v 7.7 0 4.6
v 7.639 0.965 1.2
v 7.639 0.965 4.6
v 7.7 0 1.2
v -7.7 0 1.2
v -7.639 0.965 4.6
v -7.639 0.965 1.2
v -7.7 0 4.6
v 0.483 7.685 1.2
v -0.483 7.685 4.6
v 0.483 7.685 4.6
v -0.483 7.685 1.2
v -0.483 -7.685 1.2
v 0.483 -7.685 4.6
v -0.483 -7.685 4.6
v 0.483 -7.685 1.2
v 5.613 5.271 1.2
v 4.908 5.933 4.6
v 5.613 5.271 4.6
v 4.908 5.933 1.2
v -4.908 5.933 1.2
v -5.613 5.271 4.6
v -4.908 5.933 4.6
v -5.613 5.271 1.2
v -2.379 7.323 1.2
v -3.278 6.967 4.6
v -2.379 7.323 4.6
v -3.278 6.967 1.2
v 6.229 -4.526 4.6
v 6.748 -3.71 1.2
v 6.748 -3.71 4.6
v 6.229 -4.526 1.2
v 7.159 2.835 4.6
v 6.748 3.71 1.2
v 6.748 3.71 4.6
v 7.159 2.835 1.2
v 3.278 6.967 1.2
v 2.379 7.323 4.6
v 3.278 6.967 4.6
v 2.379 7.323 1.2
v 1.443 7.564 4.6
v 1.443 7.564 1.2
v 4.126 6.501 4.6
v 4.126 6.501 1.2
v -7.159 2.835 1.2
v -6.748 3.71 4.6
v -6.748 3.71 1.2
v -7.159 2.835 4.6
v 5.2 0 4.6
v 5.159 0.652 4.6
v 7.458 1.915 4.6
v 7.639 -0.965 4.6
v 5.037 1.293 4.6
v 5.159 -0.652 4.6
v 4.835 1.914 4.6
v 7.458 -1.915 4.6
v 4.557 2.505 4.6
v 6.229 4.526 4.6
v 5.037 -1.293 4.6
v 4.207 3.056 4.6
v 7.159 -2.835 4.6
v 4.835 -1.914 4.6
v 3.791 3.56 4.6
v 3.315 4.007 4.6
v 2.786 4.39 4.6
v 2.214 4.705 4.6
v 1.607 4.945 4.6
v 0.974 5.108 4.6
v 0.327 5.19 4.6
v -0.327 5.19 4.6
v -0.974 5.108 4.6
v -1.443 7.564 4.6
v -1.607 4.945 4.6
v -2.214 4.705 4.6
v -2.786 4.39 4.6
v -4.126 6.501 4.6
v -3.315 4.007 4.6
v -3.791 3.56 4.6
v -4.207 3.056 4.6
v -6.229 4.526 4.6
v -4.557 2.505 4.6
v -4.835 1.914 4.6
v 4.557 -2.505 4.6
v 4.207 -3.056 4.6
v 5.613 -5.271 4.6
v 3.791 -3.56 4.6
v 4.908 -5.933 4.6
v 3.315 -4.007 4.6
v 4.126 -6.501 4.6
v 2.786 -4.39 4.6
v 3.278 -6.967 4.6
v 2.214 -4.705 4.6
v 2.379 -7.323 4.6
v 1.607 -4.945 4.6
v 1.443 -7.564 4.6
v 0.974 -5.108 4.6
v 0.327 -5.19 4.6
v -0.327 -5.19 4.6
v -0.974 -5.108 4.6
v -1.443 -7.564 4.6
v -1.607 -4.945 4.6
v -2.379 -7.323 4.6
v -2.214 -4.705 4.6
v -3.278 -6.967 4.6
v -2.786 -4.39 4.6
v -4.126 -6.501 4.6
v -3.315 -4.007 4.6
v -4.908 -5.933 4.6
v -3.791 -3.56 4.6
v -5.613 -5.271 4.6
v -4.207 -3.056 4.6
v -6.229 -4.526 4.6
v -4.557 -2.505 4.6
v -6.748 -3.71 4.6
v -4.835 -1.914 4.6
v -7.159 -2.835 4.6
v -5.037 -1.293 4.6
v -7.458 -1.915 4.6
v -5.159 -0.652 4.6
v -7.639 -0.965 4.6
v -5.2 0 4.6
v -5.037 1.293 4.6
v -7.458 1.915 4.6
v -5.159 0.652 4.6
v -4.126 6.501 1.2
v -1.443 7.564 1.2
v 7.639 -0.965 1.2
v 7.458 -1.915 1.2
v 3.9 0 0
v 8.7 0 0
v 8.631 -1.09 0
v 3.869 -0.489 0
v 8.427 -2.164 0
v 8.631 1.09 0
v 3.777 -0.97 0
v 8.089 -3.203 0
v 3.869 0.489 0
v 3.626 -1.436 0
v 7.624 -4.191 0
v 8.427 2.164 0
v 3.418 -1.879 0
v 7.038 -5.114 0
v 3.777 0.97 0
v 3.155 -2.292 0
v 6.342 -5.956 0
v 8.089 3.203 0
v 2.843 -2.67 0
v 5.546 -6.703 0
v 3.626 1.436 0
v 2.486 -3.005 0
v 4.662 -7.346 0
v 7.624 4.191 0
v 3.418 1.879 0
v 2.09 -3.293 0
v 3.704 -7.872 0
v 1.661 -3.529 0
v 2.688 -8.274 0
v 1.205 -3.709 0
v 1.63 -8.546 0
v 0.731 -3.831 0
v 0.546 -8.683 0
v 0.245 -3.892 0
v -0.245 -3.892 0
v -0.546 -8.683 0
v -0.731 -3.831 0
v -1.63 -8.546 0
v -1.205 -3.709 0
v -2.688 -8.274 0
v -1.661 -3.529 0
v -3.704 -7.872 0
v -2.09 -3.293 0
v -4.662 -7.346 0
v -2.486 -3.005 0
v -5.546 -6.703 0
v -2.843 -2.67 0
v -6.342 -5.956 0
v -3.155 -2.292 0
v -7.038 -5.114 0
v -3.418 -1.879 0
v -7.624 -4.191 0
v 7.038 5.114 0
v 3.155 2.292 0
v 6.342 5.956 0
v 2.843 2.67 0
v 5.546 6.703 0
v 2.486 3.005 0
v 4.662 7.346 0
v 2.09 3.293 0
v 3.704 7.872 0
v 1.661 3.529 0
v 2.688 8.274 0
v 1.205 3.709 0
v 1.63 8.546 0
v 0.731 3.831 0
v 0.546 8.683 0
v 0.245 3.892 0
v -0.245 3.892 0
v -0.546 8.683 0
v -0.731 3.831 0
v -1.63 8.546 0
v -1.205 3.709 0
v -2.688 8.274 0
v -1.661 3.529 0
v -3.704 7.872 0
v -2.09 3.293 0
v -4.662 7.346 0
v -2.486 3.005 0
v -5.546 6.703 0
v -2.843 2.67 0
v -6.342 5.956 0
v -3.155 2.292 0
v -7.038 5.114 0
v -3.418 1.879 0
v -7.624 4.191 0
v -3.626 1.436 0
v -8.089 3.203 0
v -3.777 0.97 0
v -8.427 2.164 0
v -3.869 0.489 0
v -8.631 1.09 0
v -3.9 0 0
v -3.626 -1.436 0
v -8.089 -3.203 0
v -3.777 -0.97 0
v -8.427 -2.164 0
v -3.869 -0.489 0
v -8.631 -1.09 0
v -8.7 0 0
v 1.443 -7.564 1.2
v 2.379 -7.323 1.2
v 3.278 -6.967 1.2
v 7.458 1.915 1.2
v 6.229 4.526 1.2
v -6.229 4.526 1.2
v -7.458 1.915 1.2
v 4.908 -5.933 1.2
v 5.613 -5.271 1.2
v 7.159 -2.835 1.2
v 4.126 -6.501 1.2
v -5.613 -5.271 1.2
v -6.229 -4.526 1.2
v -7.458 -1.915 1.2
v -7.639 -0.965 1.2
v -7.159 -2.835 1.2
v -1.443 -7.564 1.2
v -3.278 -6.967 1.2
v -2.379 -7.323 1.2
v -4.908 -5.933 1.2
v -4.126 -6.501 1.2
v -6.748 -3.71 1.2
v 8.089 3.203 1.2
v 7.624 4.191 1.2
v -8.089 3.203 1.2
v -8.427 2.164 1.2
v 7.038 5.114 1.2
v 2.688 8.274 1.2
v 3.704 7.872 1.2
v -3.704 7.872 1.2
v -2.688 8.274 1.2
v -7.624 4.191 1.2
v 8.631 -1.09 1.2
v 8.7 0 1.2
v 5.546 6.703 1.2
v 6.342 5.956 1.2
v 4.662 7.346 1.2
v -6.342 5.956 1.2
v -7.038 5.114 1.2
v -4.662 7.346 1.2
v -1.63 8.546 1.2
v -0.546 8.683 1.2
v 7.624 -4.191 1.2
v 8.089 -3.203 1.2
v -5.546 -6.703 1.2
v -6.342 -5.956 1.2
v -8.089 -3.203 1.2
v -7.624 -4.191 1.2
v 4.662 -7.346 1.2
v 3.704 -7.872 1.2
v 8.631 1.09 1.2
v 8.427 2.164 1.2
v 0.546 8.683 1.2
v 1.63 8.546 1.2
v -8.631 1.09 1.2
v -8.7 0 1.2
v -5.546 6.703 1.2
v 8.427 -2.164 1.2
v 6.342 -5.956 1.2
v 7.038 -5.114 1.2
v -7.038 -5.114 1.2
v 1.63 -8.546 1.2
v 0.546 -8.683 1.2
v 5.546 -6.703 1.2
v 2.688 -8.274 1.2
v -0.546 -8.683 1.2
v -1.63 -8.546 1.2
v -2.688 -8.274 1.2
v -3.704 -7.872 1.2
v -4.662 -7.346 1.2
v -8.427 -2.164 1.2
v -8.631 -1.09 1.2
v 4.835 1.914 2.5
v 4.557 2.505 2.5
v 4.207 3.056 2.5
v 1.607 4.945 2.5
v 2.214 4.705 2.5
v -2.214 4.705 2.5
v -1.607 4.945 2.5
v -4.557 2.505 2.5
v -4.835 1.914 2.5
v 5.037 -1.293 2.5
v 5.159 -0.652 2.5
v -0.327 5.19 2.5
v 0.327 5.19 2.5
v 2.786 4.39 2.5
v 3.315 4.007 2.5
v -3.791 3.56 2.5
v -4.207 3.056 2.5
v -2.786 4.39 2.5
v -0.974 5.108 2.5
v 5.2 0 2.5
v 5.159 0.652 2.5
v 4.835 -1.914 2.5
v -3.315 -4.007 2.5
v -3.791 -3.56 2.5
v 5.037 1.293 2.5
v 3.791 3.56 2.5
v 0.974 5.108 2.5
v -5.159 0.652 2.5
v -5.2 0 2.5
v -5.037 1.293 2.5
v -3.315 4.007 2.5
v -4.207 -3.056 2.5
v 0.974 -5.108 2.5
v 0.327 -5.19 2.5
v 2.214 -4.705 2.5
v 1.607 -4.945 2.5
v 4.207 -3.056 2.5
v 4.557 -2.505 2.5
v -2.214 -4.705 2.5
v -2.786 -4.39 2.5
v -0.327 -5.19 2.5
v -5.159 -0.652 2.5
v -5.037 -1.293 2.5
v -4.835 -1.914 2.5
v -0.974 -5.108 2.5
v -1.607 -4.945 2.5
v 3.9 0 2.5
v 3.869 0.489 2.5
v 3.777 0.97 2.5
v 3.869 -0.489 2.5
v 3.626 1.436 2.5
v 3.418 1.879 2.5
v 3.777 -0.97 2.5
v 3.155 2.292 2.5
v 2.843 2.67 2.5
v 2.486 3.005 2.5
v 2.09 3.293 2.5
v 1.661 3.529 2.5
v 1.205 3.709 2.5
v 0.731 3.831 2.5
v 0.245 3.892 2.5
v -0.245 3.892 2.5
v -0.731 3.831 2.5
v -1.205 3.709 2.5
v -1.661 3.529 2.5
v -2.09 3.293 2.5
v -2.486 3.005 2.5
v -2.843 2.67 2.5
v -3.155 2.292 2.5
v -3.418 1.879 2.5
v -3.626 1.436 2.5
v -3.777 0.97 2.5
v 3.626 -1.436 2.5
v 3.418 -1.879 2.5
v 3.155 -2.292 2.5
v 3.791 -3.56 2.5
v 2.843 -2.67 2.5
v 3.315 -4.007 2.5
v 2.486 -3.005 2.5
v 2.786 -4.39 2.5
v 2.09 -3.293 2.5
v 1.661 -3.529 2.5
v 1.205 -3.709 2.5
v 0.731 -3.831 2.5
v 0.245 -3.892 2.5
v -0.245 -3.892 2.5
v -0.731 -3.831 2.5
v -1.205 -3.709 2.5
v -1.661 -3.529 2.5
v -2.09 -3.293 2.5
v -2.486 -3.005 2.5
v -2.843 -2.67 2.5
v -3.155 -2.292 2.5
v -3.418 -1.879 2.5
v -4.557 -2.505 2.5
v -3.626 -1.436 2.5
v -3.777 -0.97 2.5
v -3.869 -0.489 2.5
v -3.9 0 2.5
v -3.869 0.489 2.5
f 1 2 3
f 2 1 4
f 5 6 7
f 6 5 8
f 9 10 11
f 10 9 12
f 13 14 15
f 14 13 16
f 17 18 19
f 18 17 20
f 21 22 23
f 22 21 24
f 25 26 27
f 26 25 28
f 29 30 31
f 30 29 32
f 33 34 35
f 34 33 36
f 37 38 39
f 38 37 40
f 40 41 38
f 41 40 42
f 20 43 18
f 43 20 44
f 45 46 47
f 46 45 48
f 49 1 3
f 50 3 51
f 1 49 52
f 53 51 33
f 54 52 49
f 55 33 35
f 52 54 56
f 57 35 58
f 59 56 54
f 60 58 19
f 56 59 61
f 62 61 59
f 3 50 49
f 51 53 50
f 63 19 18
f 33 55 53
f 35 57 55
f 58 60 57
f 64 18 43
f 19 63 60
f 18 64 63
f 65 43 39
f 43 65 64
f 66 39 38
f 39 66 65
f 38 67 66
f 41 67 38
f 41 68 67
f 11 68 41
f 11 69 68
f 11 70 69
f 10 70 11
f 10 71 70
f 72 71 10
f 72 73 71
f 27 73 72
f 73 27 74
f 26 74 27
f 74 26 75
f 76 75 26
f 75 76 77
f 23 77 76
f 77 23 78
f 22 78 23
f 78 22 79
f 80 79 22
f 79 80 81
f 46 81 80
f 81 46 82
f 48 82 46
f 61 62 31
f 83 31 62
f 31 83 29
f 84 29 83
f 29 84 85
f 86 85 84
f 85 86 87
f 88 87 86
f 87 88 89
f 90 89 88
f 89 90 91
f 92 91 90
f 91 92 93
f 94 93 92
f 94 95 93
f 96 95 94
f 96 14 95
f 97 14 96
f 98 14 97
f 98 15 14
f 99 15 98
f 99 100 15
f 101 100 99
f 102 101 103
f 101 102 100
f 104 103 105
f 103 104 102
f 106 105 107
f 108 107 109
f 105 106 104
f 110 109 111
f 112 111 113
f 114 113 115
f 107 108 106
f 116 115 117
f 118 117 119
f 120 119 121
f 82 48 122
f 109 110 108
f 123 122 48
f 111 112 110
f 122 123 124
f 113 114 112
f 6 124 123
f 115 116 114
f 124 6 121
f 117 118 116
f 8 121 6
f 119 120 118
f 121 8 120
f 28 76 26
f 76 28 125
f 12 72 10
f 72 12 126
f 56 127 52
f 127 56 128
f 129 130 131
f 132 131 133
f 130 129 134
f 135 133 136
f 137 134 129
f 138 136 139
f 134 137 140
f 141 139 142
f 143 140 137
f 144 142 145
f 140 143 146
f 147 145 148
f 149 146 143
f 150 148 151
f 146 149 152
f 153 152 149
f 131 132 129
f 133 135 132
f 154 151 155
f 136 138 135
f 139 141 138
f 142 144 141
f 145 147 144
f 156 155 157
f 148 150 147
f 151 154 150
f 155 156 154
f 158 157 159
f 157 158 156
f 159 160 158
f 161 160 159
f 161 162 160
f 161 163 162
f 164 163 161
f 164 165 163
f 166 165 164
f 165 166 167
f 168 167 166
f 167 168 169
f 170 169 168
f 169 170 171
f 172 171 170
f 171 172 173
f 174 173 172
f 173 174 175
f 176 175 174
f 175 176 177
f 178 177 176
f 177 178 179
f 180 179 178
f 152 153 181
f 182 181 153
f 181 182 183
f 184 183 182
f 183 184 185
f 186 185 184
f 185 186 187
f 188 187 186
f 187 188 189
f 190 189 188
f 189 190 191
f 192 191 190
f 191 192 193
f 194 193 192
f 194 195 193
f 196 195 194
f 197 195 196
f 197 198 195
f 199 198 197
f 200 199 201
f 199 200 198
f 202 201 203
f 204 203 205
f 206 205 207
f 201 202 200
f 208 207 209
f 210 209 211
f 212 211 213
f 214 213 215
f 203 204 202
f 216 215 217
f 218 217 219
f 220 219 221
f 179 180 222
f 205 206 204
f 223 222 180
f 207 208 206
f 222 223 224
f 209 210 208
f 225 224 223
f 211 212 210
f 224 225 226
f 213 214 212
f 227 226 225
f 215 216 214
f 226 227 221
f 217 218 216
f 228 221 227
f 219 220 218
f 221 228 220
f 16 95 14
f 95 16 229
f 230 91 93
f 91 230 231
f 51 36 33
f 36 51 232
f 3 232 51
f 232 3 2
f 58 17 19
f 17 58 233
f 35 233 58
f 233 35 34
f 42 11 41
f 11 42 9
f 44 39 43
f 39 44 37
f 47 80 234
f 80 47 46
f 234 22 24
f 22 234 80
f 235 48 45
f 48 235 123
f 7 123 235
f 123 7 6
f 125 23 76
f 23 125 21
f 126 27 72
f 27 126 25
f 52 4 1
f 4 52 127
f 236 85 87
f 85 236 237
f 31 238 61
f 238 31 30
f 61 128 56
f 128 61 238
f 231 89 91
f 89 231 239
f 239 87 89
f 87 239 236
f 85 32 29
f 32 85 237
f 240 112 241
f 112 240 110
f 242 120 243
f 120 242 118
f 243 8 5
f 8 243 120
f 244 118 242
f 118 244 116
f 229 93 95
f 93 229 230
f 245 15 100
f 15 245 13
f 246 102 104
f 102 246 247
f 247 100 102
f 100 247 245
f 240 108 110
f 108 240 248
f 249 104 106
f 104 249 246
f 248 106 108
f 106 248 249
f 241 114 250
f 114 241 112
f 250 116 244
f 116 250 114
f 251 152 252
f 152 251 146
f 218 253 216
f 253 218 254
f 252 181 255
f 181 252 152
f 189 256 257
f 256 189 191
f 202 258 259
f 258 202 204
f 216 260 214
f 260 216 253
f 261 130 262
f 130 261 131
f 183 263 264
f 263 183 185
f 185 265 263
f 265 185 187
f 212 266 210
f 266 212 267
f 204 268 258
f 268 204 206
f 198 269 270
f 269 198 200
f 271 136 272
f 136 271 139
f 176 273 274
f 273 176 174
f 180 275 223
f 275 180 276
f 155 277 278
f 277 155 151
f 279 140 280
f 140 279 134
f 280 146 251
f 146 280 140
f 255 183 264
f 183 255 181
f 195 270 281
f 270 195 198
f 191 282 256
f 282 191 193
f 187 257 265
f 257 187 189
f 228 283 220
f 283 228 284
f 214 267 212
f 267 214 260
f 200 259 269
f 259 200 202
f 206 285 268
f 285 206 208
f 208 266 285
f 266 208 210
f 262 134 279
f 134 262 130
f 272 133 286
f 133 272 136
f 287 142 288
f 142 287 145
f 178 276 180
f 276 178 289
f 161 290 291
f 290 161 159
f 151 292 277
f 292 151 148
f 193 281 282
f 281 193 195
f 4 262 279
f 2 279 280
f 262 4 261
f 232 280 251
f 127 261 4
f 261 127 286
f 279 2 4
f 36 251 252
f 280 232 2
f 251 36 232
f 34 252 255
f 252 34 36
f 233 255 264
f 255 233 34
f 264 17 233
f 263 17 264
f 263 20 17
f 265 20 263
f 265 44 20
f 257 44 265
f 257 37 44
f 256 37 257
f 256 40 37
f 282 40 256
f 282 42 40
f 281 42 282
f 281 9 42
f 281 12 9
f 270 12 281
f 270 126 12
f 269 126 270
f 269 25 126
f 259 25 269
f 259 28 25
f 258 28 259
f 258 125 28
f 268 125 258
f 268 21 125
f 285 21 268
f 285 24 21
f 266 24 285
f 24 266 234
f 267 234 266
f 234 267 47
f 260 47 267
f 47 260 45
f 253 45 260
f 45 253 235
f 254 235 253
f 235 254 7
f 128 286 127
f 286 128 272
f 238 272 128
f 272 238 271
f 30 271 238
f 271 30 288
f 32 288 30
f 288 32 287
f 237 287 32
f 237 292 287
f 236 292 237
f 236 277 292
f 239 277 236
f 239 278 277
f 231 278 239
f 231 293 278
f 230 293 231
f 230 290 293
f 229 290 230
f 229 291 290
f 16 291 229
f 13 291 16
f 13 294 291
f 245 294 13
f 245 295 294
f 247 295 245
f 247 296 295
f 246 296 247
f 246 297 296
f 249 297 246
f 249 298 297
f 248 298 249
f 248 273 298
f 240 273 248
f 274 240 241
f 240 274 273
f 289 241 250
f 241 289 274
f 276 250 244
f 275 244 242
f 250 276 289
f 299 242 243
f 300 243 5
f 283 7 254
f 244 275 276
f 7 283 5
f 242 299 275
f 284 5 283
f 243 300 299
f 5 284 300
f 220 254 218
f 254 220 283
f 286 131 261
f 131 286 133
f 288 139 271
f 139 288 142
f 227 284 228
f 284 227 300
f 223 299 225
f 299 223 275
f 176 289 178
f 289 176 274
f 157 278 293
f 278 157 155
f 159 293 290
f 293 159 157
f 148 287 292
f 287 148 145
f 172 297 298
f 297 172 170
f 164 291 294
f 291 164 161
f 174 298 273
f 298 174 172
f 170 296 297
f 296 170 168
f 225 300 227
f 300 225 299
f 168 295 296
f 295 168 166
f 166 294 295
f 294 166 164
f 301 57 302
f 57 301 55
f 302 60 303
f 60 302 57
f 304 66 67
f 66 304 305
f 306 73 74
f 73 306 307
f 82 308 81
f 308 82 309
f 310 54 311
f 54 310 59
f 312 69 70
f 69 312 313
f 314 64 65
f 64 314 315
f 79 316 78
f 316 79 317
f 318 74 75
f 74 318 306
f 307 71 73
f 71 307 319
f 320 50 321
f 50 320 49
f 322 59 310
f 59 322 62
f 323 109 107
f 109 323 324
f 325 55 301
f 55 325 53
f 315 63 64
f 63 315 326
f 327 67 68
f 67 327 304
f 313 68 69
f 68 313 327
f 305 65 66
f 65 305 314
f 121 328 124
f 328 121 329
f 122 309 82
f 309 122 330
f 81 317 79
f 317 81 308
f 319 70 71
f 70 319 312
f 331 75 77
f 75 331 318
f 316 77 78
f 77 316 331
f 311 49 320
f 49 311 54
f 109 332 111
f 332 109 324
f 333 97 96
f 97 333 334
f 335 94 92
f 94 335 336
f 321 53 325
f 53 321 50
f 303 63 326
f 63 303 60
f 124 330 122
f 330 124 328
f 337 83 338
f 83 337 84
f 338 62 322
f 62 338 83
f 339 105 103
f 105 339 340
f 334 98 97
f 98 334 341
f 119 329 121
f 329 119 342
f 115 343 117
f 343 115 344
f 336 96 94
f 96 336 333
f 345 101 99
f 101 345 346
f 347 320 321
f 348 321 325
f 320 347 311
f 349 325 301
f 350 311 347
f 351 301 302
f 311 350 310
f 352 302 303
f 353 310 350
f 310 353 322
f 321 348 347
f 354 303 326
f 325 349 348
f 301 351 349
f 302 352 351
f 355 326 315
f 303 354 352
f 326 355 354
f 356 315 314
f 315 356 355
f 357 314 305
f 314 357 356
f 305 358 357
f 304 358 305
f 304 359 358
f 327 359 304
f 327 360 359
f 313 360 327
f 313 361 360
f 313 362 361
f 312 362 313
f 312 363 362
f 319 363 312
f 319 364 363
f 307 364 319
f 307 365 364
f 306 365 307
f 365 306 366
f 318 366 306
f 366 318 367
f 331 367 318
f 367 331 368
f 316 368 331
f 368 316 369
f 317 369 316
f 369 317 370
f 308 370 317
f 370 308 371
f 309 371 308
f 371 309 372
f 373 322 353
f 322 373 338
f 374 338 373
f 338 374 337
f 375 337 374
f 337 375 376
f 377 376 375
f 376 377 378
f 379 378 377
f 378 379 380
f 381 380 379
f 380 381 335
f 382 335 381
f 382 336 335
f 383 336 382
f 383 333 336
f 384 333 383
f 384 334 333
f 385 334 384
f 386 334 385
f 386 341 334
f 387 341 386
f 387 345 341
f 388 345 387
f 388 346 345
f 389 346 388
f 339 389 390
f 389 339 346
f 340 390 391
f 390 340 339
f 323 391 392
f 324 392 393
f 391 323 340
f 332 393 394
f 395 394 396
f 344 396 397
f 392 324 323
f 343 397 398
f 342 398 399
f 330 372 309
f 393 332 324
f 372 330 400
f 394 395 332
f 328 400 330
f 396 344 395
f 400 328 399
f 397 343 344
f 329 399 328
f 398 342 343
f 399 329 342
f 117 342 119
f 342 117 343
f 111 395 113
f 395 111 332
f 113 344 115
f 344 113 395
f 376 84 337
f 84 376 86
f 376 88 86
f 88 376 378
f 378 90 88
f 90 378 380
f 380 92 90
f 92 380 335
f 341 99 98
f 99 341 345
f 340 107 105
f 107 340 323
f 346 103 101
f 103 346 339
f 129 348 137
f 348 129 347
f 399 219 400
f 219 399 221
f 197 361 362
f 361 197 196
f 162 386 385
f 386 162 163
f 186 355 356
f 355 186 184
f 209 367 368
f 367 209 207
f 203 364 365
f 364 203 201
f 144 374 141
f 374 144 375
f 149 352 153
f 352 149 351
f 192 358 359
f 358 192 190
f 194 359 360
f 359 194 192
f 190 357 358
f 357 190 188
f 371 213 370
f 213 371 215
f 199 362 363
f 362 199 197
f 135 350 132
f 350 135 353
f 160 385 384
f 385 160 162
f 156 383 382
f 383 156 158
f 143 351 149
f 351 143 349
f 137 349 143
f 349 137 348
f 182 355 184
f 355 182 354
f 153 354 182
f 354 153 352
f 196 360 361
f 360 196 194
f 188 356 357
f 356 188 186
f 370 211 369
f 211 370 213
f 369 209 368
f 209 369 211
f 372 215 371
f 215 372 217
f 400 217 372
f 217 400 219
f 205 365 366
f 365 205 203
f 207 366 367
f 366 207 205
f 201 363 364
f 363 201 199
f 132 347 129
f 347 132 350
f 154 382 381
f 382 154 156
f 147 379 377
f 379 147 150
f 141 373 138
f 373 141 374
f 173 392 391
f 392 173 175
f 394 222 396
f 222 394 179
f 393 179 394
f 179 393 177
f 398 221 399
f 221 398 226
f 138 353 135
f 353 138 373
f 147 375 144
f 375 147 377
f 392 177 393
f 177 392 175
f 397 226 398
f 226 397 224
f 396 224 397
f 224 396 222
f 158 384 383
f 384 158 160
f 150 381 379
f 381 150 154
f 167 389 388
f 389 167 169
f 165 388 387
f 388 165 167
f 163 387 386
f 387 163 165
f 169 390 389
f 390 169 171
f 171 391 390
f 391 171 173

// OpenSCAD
// PRUSA iteration3
// 624 bearing belt guide
// GNU GPL v3
// Josef Průša <iam@josefprusa.cz> and contributors
// http://www.reprap.org/wiki/Prusa_Mendel
// http://prusamendel.org

wall= 1.2;
height= 4.6;
bearing_thickness= 4;
clearence= 0.1; 

module belt_guide_base(){
 cylinder(r=6.4+wall+clearence, h=height, $fn=50);
 cylinder(r=5+wall+clearence+2*wall, h=0.95+0.25, $fn=50);
}

module belt_guide_holes(){
 translate([0,0,height-(bearing_thickness/2)-clearence ]) cylinder(r=5.1+clearence, h=10, $fn=50);
 translate([0,0,-1]) cylinder(r=5+wall+clearence-2*wall, h=10, $fn=50);
}

// Final part
module belt_guide(){
 difference(){
  belt_guide_base();
  belt_guide_holes();
 }
}

belt_guide();
